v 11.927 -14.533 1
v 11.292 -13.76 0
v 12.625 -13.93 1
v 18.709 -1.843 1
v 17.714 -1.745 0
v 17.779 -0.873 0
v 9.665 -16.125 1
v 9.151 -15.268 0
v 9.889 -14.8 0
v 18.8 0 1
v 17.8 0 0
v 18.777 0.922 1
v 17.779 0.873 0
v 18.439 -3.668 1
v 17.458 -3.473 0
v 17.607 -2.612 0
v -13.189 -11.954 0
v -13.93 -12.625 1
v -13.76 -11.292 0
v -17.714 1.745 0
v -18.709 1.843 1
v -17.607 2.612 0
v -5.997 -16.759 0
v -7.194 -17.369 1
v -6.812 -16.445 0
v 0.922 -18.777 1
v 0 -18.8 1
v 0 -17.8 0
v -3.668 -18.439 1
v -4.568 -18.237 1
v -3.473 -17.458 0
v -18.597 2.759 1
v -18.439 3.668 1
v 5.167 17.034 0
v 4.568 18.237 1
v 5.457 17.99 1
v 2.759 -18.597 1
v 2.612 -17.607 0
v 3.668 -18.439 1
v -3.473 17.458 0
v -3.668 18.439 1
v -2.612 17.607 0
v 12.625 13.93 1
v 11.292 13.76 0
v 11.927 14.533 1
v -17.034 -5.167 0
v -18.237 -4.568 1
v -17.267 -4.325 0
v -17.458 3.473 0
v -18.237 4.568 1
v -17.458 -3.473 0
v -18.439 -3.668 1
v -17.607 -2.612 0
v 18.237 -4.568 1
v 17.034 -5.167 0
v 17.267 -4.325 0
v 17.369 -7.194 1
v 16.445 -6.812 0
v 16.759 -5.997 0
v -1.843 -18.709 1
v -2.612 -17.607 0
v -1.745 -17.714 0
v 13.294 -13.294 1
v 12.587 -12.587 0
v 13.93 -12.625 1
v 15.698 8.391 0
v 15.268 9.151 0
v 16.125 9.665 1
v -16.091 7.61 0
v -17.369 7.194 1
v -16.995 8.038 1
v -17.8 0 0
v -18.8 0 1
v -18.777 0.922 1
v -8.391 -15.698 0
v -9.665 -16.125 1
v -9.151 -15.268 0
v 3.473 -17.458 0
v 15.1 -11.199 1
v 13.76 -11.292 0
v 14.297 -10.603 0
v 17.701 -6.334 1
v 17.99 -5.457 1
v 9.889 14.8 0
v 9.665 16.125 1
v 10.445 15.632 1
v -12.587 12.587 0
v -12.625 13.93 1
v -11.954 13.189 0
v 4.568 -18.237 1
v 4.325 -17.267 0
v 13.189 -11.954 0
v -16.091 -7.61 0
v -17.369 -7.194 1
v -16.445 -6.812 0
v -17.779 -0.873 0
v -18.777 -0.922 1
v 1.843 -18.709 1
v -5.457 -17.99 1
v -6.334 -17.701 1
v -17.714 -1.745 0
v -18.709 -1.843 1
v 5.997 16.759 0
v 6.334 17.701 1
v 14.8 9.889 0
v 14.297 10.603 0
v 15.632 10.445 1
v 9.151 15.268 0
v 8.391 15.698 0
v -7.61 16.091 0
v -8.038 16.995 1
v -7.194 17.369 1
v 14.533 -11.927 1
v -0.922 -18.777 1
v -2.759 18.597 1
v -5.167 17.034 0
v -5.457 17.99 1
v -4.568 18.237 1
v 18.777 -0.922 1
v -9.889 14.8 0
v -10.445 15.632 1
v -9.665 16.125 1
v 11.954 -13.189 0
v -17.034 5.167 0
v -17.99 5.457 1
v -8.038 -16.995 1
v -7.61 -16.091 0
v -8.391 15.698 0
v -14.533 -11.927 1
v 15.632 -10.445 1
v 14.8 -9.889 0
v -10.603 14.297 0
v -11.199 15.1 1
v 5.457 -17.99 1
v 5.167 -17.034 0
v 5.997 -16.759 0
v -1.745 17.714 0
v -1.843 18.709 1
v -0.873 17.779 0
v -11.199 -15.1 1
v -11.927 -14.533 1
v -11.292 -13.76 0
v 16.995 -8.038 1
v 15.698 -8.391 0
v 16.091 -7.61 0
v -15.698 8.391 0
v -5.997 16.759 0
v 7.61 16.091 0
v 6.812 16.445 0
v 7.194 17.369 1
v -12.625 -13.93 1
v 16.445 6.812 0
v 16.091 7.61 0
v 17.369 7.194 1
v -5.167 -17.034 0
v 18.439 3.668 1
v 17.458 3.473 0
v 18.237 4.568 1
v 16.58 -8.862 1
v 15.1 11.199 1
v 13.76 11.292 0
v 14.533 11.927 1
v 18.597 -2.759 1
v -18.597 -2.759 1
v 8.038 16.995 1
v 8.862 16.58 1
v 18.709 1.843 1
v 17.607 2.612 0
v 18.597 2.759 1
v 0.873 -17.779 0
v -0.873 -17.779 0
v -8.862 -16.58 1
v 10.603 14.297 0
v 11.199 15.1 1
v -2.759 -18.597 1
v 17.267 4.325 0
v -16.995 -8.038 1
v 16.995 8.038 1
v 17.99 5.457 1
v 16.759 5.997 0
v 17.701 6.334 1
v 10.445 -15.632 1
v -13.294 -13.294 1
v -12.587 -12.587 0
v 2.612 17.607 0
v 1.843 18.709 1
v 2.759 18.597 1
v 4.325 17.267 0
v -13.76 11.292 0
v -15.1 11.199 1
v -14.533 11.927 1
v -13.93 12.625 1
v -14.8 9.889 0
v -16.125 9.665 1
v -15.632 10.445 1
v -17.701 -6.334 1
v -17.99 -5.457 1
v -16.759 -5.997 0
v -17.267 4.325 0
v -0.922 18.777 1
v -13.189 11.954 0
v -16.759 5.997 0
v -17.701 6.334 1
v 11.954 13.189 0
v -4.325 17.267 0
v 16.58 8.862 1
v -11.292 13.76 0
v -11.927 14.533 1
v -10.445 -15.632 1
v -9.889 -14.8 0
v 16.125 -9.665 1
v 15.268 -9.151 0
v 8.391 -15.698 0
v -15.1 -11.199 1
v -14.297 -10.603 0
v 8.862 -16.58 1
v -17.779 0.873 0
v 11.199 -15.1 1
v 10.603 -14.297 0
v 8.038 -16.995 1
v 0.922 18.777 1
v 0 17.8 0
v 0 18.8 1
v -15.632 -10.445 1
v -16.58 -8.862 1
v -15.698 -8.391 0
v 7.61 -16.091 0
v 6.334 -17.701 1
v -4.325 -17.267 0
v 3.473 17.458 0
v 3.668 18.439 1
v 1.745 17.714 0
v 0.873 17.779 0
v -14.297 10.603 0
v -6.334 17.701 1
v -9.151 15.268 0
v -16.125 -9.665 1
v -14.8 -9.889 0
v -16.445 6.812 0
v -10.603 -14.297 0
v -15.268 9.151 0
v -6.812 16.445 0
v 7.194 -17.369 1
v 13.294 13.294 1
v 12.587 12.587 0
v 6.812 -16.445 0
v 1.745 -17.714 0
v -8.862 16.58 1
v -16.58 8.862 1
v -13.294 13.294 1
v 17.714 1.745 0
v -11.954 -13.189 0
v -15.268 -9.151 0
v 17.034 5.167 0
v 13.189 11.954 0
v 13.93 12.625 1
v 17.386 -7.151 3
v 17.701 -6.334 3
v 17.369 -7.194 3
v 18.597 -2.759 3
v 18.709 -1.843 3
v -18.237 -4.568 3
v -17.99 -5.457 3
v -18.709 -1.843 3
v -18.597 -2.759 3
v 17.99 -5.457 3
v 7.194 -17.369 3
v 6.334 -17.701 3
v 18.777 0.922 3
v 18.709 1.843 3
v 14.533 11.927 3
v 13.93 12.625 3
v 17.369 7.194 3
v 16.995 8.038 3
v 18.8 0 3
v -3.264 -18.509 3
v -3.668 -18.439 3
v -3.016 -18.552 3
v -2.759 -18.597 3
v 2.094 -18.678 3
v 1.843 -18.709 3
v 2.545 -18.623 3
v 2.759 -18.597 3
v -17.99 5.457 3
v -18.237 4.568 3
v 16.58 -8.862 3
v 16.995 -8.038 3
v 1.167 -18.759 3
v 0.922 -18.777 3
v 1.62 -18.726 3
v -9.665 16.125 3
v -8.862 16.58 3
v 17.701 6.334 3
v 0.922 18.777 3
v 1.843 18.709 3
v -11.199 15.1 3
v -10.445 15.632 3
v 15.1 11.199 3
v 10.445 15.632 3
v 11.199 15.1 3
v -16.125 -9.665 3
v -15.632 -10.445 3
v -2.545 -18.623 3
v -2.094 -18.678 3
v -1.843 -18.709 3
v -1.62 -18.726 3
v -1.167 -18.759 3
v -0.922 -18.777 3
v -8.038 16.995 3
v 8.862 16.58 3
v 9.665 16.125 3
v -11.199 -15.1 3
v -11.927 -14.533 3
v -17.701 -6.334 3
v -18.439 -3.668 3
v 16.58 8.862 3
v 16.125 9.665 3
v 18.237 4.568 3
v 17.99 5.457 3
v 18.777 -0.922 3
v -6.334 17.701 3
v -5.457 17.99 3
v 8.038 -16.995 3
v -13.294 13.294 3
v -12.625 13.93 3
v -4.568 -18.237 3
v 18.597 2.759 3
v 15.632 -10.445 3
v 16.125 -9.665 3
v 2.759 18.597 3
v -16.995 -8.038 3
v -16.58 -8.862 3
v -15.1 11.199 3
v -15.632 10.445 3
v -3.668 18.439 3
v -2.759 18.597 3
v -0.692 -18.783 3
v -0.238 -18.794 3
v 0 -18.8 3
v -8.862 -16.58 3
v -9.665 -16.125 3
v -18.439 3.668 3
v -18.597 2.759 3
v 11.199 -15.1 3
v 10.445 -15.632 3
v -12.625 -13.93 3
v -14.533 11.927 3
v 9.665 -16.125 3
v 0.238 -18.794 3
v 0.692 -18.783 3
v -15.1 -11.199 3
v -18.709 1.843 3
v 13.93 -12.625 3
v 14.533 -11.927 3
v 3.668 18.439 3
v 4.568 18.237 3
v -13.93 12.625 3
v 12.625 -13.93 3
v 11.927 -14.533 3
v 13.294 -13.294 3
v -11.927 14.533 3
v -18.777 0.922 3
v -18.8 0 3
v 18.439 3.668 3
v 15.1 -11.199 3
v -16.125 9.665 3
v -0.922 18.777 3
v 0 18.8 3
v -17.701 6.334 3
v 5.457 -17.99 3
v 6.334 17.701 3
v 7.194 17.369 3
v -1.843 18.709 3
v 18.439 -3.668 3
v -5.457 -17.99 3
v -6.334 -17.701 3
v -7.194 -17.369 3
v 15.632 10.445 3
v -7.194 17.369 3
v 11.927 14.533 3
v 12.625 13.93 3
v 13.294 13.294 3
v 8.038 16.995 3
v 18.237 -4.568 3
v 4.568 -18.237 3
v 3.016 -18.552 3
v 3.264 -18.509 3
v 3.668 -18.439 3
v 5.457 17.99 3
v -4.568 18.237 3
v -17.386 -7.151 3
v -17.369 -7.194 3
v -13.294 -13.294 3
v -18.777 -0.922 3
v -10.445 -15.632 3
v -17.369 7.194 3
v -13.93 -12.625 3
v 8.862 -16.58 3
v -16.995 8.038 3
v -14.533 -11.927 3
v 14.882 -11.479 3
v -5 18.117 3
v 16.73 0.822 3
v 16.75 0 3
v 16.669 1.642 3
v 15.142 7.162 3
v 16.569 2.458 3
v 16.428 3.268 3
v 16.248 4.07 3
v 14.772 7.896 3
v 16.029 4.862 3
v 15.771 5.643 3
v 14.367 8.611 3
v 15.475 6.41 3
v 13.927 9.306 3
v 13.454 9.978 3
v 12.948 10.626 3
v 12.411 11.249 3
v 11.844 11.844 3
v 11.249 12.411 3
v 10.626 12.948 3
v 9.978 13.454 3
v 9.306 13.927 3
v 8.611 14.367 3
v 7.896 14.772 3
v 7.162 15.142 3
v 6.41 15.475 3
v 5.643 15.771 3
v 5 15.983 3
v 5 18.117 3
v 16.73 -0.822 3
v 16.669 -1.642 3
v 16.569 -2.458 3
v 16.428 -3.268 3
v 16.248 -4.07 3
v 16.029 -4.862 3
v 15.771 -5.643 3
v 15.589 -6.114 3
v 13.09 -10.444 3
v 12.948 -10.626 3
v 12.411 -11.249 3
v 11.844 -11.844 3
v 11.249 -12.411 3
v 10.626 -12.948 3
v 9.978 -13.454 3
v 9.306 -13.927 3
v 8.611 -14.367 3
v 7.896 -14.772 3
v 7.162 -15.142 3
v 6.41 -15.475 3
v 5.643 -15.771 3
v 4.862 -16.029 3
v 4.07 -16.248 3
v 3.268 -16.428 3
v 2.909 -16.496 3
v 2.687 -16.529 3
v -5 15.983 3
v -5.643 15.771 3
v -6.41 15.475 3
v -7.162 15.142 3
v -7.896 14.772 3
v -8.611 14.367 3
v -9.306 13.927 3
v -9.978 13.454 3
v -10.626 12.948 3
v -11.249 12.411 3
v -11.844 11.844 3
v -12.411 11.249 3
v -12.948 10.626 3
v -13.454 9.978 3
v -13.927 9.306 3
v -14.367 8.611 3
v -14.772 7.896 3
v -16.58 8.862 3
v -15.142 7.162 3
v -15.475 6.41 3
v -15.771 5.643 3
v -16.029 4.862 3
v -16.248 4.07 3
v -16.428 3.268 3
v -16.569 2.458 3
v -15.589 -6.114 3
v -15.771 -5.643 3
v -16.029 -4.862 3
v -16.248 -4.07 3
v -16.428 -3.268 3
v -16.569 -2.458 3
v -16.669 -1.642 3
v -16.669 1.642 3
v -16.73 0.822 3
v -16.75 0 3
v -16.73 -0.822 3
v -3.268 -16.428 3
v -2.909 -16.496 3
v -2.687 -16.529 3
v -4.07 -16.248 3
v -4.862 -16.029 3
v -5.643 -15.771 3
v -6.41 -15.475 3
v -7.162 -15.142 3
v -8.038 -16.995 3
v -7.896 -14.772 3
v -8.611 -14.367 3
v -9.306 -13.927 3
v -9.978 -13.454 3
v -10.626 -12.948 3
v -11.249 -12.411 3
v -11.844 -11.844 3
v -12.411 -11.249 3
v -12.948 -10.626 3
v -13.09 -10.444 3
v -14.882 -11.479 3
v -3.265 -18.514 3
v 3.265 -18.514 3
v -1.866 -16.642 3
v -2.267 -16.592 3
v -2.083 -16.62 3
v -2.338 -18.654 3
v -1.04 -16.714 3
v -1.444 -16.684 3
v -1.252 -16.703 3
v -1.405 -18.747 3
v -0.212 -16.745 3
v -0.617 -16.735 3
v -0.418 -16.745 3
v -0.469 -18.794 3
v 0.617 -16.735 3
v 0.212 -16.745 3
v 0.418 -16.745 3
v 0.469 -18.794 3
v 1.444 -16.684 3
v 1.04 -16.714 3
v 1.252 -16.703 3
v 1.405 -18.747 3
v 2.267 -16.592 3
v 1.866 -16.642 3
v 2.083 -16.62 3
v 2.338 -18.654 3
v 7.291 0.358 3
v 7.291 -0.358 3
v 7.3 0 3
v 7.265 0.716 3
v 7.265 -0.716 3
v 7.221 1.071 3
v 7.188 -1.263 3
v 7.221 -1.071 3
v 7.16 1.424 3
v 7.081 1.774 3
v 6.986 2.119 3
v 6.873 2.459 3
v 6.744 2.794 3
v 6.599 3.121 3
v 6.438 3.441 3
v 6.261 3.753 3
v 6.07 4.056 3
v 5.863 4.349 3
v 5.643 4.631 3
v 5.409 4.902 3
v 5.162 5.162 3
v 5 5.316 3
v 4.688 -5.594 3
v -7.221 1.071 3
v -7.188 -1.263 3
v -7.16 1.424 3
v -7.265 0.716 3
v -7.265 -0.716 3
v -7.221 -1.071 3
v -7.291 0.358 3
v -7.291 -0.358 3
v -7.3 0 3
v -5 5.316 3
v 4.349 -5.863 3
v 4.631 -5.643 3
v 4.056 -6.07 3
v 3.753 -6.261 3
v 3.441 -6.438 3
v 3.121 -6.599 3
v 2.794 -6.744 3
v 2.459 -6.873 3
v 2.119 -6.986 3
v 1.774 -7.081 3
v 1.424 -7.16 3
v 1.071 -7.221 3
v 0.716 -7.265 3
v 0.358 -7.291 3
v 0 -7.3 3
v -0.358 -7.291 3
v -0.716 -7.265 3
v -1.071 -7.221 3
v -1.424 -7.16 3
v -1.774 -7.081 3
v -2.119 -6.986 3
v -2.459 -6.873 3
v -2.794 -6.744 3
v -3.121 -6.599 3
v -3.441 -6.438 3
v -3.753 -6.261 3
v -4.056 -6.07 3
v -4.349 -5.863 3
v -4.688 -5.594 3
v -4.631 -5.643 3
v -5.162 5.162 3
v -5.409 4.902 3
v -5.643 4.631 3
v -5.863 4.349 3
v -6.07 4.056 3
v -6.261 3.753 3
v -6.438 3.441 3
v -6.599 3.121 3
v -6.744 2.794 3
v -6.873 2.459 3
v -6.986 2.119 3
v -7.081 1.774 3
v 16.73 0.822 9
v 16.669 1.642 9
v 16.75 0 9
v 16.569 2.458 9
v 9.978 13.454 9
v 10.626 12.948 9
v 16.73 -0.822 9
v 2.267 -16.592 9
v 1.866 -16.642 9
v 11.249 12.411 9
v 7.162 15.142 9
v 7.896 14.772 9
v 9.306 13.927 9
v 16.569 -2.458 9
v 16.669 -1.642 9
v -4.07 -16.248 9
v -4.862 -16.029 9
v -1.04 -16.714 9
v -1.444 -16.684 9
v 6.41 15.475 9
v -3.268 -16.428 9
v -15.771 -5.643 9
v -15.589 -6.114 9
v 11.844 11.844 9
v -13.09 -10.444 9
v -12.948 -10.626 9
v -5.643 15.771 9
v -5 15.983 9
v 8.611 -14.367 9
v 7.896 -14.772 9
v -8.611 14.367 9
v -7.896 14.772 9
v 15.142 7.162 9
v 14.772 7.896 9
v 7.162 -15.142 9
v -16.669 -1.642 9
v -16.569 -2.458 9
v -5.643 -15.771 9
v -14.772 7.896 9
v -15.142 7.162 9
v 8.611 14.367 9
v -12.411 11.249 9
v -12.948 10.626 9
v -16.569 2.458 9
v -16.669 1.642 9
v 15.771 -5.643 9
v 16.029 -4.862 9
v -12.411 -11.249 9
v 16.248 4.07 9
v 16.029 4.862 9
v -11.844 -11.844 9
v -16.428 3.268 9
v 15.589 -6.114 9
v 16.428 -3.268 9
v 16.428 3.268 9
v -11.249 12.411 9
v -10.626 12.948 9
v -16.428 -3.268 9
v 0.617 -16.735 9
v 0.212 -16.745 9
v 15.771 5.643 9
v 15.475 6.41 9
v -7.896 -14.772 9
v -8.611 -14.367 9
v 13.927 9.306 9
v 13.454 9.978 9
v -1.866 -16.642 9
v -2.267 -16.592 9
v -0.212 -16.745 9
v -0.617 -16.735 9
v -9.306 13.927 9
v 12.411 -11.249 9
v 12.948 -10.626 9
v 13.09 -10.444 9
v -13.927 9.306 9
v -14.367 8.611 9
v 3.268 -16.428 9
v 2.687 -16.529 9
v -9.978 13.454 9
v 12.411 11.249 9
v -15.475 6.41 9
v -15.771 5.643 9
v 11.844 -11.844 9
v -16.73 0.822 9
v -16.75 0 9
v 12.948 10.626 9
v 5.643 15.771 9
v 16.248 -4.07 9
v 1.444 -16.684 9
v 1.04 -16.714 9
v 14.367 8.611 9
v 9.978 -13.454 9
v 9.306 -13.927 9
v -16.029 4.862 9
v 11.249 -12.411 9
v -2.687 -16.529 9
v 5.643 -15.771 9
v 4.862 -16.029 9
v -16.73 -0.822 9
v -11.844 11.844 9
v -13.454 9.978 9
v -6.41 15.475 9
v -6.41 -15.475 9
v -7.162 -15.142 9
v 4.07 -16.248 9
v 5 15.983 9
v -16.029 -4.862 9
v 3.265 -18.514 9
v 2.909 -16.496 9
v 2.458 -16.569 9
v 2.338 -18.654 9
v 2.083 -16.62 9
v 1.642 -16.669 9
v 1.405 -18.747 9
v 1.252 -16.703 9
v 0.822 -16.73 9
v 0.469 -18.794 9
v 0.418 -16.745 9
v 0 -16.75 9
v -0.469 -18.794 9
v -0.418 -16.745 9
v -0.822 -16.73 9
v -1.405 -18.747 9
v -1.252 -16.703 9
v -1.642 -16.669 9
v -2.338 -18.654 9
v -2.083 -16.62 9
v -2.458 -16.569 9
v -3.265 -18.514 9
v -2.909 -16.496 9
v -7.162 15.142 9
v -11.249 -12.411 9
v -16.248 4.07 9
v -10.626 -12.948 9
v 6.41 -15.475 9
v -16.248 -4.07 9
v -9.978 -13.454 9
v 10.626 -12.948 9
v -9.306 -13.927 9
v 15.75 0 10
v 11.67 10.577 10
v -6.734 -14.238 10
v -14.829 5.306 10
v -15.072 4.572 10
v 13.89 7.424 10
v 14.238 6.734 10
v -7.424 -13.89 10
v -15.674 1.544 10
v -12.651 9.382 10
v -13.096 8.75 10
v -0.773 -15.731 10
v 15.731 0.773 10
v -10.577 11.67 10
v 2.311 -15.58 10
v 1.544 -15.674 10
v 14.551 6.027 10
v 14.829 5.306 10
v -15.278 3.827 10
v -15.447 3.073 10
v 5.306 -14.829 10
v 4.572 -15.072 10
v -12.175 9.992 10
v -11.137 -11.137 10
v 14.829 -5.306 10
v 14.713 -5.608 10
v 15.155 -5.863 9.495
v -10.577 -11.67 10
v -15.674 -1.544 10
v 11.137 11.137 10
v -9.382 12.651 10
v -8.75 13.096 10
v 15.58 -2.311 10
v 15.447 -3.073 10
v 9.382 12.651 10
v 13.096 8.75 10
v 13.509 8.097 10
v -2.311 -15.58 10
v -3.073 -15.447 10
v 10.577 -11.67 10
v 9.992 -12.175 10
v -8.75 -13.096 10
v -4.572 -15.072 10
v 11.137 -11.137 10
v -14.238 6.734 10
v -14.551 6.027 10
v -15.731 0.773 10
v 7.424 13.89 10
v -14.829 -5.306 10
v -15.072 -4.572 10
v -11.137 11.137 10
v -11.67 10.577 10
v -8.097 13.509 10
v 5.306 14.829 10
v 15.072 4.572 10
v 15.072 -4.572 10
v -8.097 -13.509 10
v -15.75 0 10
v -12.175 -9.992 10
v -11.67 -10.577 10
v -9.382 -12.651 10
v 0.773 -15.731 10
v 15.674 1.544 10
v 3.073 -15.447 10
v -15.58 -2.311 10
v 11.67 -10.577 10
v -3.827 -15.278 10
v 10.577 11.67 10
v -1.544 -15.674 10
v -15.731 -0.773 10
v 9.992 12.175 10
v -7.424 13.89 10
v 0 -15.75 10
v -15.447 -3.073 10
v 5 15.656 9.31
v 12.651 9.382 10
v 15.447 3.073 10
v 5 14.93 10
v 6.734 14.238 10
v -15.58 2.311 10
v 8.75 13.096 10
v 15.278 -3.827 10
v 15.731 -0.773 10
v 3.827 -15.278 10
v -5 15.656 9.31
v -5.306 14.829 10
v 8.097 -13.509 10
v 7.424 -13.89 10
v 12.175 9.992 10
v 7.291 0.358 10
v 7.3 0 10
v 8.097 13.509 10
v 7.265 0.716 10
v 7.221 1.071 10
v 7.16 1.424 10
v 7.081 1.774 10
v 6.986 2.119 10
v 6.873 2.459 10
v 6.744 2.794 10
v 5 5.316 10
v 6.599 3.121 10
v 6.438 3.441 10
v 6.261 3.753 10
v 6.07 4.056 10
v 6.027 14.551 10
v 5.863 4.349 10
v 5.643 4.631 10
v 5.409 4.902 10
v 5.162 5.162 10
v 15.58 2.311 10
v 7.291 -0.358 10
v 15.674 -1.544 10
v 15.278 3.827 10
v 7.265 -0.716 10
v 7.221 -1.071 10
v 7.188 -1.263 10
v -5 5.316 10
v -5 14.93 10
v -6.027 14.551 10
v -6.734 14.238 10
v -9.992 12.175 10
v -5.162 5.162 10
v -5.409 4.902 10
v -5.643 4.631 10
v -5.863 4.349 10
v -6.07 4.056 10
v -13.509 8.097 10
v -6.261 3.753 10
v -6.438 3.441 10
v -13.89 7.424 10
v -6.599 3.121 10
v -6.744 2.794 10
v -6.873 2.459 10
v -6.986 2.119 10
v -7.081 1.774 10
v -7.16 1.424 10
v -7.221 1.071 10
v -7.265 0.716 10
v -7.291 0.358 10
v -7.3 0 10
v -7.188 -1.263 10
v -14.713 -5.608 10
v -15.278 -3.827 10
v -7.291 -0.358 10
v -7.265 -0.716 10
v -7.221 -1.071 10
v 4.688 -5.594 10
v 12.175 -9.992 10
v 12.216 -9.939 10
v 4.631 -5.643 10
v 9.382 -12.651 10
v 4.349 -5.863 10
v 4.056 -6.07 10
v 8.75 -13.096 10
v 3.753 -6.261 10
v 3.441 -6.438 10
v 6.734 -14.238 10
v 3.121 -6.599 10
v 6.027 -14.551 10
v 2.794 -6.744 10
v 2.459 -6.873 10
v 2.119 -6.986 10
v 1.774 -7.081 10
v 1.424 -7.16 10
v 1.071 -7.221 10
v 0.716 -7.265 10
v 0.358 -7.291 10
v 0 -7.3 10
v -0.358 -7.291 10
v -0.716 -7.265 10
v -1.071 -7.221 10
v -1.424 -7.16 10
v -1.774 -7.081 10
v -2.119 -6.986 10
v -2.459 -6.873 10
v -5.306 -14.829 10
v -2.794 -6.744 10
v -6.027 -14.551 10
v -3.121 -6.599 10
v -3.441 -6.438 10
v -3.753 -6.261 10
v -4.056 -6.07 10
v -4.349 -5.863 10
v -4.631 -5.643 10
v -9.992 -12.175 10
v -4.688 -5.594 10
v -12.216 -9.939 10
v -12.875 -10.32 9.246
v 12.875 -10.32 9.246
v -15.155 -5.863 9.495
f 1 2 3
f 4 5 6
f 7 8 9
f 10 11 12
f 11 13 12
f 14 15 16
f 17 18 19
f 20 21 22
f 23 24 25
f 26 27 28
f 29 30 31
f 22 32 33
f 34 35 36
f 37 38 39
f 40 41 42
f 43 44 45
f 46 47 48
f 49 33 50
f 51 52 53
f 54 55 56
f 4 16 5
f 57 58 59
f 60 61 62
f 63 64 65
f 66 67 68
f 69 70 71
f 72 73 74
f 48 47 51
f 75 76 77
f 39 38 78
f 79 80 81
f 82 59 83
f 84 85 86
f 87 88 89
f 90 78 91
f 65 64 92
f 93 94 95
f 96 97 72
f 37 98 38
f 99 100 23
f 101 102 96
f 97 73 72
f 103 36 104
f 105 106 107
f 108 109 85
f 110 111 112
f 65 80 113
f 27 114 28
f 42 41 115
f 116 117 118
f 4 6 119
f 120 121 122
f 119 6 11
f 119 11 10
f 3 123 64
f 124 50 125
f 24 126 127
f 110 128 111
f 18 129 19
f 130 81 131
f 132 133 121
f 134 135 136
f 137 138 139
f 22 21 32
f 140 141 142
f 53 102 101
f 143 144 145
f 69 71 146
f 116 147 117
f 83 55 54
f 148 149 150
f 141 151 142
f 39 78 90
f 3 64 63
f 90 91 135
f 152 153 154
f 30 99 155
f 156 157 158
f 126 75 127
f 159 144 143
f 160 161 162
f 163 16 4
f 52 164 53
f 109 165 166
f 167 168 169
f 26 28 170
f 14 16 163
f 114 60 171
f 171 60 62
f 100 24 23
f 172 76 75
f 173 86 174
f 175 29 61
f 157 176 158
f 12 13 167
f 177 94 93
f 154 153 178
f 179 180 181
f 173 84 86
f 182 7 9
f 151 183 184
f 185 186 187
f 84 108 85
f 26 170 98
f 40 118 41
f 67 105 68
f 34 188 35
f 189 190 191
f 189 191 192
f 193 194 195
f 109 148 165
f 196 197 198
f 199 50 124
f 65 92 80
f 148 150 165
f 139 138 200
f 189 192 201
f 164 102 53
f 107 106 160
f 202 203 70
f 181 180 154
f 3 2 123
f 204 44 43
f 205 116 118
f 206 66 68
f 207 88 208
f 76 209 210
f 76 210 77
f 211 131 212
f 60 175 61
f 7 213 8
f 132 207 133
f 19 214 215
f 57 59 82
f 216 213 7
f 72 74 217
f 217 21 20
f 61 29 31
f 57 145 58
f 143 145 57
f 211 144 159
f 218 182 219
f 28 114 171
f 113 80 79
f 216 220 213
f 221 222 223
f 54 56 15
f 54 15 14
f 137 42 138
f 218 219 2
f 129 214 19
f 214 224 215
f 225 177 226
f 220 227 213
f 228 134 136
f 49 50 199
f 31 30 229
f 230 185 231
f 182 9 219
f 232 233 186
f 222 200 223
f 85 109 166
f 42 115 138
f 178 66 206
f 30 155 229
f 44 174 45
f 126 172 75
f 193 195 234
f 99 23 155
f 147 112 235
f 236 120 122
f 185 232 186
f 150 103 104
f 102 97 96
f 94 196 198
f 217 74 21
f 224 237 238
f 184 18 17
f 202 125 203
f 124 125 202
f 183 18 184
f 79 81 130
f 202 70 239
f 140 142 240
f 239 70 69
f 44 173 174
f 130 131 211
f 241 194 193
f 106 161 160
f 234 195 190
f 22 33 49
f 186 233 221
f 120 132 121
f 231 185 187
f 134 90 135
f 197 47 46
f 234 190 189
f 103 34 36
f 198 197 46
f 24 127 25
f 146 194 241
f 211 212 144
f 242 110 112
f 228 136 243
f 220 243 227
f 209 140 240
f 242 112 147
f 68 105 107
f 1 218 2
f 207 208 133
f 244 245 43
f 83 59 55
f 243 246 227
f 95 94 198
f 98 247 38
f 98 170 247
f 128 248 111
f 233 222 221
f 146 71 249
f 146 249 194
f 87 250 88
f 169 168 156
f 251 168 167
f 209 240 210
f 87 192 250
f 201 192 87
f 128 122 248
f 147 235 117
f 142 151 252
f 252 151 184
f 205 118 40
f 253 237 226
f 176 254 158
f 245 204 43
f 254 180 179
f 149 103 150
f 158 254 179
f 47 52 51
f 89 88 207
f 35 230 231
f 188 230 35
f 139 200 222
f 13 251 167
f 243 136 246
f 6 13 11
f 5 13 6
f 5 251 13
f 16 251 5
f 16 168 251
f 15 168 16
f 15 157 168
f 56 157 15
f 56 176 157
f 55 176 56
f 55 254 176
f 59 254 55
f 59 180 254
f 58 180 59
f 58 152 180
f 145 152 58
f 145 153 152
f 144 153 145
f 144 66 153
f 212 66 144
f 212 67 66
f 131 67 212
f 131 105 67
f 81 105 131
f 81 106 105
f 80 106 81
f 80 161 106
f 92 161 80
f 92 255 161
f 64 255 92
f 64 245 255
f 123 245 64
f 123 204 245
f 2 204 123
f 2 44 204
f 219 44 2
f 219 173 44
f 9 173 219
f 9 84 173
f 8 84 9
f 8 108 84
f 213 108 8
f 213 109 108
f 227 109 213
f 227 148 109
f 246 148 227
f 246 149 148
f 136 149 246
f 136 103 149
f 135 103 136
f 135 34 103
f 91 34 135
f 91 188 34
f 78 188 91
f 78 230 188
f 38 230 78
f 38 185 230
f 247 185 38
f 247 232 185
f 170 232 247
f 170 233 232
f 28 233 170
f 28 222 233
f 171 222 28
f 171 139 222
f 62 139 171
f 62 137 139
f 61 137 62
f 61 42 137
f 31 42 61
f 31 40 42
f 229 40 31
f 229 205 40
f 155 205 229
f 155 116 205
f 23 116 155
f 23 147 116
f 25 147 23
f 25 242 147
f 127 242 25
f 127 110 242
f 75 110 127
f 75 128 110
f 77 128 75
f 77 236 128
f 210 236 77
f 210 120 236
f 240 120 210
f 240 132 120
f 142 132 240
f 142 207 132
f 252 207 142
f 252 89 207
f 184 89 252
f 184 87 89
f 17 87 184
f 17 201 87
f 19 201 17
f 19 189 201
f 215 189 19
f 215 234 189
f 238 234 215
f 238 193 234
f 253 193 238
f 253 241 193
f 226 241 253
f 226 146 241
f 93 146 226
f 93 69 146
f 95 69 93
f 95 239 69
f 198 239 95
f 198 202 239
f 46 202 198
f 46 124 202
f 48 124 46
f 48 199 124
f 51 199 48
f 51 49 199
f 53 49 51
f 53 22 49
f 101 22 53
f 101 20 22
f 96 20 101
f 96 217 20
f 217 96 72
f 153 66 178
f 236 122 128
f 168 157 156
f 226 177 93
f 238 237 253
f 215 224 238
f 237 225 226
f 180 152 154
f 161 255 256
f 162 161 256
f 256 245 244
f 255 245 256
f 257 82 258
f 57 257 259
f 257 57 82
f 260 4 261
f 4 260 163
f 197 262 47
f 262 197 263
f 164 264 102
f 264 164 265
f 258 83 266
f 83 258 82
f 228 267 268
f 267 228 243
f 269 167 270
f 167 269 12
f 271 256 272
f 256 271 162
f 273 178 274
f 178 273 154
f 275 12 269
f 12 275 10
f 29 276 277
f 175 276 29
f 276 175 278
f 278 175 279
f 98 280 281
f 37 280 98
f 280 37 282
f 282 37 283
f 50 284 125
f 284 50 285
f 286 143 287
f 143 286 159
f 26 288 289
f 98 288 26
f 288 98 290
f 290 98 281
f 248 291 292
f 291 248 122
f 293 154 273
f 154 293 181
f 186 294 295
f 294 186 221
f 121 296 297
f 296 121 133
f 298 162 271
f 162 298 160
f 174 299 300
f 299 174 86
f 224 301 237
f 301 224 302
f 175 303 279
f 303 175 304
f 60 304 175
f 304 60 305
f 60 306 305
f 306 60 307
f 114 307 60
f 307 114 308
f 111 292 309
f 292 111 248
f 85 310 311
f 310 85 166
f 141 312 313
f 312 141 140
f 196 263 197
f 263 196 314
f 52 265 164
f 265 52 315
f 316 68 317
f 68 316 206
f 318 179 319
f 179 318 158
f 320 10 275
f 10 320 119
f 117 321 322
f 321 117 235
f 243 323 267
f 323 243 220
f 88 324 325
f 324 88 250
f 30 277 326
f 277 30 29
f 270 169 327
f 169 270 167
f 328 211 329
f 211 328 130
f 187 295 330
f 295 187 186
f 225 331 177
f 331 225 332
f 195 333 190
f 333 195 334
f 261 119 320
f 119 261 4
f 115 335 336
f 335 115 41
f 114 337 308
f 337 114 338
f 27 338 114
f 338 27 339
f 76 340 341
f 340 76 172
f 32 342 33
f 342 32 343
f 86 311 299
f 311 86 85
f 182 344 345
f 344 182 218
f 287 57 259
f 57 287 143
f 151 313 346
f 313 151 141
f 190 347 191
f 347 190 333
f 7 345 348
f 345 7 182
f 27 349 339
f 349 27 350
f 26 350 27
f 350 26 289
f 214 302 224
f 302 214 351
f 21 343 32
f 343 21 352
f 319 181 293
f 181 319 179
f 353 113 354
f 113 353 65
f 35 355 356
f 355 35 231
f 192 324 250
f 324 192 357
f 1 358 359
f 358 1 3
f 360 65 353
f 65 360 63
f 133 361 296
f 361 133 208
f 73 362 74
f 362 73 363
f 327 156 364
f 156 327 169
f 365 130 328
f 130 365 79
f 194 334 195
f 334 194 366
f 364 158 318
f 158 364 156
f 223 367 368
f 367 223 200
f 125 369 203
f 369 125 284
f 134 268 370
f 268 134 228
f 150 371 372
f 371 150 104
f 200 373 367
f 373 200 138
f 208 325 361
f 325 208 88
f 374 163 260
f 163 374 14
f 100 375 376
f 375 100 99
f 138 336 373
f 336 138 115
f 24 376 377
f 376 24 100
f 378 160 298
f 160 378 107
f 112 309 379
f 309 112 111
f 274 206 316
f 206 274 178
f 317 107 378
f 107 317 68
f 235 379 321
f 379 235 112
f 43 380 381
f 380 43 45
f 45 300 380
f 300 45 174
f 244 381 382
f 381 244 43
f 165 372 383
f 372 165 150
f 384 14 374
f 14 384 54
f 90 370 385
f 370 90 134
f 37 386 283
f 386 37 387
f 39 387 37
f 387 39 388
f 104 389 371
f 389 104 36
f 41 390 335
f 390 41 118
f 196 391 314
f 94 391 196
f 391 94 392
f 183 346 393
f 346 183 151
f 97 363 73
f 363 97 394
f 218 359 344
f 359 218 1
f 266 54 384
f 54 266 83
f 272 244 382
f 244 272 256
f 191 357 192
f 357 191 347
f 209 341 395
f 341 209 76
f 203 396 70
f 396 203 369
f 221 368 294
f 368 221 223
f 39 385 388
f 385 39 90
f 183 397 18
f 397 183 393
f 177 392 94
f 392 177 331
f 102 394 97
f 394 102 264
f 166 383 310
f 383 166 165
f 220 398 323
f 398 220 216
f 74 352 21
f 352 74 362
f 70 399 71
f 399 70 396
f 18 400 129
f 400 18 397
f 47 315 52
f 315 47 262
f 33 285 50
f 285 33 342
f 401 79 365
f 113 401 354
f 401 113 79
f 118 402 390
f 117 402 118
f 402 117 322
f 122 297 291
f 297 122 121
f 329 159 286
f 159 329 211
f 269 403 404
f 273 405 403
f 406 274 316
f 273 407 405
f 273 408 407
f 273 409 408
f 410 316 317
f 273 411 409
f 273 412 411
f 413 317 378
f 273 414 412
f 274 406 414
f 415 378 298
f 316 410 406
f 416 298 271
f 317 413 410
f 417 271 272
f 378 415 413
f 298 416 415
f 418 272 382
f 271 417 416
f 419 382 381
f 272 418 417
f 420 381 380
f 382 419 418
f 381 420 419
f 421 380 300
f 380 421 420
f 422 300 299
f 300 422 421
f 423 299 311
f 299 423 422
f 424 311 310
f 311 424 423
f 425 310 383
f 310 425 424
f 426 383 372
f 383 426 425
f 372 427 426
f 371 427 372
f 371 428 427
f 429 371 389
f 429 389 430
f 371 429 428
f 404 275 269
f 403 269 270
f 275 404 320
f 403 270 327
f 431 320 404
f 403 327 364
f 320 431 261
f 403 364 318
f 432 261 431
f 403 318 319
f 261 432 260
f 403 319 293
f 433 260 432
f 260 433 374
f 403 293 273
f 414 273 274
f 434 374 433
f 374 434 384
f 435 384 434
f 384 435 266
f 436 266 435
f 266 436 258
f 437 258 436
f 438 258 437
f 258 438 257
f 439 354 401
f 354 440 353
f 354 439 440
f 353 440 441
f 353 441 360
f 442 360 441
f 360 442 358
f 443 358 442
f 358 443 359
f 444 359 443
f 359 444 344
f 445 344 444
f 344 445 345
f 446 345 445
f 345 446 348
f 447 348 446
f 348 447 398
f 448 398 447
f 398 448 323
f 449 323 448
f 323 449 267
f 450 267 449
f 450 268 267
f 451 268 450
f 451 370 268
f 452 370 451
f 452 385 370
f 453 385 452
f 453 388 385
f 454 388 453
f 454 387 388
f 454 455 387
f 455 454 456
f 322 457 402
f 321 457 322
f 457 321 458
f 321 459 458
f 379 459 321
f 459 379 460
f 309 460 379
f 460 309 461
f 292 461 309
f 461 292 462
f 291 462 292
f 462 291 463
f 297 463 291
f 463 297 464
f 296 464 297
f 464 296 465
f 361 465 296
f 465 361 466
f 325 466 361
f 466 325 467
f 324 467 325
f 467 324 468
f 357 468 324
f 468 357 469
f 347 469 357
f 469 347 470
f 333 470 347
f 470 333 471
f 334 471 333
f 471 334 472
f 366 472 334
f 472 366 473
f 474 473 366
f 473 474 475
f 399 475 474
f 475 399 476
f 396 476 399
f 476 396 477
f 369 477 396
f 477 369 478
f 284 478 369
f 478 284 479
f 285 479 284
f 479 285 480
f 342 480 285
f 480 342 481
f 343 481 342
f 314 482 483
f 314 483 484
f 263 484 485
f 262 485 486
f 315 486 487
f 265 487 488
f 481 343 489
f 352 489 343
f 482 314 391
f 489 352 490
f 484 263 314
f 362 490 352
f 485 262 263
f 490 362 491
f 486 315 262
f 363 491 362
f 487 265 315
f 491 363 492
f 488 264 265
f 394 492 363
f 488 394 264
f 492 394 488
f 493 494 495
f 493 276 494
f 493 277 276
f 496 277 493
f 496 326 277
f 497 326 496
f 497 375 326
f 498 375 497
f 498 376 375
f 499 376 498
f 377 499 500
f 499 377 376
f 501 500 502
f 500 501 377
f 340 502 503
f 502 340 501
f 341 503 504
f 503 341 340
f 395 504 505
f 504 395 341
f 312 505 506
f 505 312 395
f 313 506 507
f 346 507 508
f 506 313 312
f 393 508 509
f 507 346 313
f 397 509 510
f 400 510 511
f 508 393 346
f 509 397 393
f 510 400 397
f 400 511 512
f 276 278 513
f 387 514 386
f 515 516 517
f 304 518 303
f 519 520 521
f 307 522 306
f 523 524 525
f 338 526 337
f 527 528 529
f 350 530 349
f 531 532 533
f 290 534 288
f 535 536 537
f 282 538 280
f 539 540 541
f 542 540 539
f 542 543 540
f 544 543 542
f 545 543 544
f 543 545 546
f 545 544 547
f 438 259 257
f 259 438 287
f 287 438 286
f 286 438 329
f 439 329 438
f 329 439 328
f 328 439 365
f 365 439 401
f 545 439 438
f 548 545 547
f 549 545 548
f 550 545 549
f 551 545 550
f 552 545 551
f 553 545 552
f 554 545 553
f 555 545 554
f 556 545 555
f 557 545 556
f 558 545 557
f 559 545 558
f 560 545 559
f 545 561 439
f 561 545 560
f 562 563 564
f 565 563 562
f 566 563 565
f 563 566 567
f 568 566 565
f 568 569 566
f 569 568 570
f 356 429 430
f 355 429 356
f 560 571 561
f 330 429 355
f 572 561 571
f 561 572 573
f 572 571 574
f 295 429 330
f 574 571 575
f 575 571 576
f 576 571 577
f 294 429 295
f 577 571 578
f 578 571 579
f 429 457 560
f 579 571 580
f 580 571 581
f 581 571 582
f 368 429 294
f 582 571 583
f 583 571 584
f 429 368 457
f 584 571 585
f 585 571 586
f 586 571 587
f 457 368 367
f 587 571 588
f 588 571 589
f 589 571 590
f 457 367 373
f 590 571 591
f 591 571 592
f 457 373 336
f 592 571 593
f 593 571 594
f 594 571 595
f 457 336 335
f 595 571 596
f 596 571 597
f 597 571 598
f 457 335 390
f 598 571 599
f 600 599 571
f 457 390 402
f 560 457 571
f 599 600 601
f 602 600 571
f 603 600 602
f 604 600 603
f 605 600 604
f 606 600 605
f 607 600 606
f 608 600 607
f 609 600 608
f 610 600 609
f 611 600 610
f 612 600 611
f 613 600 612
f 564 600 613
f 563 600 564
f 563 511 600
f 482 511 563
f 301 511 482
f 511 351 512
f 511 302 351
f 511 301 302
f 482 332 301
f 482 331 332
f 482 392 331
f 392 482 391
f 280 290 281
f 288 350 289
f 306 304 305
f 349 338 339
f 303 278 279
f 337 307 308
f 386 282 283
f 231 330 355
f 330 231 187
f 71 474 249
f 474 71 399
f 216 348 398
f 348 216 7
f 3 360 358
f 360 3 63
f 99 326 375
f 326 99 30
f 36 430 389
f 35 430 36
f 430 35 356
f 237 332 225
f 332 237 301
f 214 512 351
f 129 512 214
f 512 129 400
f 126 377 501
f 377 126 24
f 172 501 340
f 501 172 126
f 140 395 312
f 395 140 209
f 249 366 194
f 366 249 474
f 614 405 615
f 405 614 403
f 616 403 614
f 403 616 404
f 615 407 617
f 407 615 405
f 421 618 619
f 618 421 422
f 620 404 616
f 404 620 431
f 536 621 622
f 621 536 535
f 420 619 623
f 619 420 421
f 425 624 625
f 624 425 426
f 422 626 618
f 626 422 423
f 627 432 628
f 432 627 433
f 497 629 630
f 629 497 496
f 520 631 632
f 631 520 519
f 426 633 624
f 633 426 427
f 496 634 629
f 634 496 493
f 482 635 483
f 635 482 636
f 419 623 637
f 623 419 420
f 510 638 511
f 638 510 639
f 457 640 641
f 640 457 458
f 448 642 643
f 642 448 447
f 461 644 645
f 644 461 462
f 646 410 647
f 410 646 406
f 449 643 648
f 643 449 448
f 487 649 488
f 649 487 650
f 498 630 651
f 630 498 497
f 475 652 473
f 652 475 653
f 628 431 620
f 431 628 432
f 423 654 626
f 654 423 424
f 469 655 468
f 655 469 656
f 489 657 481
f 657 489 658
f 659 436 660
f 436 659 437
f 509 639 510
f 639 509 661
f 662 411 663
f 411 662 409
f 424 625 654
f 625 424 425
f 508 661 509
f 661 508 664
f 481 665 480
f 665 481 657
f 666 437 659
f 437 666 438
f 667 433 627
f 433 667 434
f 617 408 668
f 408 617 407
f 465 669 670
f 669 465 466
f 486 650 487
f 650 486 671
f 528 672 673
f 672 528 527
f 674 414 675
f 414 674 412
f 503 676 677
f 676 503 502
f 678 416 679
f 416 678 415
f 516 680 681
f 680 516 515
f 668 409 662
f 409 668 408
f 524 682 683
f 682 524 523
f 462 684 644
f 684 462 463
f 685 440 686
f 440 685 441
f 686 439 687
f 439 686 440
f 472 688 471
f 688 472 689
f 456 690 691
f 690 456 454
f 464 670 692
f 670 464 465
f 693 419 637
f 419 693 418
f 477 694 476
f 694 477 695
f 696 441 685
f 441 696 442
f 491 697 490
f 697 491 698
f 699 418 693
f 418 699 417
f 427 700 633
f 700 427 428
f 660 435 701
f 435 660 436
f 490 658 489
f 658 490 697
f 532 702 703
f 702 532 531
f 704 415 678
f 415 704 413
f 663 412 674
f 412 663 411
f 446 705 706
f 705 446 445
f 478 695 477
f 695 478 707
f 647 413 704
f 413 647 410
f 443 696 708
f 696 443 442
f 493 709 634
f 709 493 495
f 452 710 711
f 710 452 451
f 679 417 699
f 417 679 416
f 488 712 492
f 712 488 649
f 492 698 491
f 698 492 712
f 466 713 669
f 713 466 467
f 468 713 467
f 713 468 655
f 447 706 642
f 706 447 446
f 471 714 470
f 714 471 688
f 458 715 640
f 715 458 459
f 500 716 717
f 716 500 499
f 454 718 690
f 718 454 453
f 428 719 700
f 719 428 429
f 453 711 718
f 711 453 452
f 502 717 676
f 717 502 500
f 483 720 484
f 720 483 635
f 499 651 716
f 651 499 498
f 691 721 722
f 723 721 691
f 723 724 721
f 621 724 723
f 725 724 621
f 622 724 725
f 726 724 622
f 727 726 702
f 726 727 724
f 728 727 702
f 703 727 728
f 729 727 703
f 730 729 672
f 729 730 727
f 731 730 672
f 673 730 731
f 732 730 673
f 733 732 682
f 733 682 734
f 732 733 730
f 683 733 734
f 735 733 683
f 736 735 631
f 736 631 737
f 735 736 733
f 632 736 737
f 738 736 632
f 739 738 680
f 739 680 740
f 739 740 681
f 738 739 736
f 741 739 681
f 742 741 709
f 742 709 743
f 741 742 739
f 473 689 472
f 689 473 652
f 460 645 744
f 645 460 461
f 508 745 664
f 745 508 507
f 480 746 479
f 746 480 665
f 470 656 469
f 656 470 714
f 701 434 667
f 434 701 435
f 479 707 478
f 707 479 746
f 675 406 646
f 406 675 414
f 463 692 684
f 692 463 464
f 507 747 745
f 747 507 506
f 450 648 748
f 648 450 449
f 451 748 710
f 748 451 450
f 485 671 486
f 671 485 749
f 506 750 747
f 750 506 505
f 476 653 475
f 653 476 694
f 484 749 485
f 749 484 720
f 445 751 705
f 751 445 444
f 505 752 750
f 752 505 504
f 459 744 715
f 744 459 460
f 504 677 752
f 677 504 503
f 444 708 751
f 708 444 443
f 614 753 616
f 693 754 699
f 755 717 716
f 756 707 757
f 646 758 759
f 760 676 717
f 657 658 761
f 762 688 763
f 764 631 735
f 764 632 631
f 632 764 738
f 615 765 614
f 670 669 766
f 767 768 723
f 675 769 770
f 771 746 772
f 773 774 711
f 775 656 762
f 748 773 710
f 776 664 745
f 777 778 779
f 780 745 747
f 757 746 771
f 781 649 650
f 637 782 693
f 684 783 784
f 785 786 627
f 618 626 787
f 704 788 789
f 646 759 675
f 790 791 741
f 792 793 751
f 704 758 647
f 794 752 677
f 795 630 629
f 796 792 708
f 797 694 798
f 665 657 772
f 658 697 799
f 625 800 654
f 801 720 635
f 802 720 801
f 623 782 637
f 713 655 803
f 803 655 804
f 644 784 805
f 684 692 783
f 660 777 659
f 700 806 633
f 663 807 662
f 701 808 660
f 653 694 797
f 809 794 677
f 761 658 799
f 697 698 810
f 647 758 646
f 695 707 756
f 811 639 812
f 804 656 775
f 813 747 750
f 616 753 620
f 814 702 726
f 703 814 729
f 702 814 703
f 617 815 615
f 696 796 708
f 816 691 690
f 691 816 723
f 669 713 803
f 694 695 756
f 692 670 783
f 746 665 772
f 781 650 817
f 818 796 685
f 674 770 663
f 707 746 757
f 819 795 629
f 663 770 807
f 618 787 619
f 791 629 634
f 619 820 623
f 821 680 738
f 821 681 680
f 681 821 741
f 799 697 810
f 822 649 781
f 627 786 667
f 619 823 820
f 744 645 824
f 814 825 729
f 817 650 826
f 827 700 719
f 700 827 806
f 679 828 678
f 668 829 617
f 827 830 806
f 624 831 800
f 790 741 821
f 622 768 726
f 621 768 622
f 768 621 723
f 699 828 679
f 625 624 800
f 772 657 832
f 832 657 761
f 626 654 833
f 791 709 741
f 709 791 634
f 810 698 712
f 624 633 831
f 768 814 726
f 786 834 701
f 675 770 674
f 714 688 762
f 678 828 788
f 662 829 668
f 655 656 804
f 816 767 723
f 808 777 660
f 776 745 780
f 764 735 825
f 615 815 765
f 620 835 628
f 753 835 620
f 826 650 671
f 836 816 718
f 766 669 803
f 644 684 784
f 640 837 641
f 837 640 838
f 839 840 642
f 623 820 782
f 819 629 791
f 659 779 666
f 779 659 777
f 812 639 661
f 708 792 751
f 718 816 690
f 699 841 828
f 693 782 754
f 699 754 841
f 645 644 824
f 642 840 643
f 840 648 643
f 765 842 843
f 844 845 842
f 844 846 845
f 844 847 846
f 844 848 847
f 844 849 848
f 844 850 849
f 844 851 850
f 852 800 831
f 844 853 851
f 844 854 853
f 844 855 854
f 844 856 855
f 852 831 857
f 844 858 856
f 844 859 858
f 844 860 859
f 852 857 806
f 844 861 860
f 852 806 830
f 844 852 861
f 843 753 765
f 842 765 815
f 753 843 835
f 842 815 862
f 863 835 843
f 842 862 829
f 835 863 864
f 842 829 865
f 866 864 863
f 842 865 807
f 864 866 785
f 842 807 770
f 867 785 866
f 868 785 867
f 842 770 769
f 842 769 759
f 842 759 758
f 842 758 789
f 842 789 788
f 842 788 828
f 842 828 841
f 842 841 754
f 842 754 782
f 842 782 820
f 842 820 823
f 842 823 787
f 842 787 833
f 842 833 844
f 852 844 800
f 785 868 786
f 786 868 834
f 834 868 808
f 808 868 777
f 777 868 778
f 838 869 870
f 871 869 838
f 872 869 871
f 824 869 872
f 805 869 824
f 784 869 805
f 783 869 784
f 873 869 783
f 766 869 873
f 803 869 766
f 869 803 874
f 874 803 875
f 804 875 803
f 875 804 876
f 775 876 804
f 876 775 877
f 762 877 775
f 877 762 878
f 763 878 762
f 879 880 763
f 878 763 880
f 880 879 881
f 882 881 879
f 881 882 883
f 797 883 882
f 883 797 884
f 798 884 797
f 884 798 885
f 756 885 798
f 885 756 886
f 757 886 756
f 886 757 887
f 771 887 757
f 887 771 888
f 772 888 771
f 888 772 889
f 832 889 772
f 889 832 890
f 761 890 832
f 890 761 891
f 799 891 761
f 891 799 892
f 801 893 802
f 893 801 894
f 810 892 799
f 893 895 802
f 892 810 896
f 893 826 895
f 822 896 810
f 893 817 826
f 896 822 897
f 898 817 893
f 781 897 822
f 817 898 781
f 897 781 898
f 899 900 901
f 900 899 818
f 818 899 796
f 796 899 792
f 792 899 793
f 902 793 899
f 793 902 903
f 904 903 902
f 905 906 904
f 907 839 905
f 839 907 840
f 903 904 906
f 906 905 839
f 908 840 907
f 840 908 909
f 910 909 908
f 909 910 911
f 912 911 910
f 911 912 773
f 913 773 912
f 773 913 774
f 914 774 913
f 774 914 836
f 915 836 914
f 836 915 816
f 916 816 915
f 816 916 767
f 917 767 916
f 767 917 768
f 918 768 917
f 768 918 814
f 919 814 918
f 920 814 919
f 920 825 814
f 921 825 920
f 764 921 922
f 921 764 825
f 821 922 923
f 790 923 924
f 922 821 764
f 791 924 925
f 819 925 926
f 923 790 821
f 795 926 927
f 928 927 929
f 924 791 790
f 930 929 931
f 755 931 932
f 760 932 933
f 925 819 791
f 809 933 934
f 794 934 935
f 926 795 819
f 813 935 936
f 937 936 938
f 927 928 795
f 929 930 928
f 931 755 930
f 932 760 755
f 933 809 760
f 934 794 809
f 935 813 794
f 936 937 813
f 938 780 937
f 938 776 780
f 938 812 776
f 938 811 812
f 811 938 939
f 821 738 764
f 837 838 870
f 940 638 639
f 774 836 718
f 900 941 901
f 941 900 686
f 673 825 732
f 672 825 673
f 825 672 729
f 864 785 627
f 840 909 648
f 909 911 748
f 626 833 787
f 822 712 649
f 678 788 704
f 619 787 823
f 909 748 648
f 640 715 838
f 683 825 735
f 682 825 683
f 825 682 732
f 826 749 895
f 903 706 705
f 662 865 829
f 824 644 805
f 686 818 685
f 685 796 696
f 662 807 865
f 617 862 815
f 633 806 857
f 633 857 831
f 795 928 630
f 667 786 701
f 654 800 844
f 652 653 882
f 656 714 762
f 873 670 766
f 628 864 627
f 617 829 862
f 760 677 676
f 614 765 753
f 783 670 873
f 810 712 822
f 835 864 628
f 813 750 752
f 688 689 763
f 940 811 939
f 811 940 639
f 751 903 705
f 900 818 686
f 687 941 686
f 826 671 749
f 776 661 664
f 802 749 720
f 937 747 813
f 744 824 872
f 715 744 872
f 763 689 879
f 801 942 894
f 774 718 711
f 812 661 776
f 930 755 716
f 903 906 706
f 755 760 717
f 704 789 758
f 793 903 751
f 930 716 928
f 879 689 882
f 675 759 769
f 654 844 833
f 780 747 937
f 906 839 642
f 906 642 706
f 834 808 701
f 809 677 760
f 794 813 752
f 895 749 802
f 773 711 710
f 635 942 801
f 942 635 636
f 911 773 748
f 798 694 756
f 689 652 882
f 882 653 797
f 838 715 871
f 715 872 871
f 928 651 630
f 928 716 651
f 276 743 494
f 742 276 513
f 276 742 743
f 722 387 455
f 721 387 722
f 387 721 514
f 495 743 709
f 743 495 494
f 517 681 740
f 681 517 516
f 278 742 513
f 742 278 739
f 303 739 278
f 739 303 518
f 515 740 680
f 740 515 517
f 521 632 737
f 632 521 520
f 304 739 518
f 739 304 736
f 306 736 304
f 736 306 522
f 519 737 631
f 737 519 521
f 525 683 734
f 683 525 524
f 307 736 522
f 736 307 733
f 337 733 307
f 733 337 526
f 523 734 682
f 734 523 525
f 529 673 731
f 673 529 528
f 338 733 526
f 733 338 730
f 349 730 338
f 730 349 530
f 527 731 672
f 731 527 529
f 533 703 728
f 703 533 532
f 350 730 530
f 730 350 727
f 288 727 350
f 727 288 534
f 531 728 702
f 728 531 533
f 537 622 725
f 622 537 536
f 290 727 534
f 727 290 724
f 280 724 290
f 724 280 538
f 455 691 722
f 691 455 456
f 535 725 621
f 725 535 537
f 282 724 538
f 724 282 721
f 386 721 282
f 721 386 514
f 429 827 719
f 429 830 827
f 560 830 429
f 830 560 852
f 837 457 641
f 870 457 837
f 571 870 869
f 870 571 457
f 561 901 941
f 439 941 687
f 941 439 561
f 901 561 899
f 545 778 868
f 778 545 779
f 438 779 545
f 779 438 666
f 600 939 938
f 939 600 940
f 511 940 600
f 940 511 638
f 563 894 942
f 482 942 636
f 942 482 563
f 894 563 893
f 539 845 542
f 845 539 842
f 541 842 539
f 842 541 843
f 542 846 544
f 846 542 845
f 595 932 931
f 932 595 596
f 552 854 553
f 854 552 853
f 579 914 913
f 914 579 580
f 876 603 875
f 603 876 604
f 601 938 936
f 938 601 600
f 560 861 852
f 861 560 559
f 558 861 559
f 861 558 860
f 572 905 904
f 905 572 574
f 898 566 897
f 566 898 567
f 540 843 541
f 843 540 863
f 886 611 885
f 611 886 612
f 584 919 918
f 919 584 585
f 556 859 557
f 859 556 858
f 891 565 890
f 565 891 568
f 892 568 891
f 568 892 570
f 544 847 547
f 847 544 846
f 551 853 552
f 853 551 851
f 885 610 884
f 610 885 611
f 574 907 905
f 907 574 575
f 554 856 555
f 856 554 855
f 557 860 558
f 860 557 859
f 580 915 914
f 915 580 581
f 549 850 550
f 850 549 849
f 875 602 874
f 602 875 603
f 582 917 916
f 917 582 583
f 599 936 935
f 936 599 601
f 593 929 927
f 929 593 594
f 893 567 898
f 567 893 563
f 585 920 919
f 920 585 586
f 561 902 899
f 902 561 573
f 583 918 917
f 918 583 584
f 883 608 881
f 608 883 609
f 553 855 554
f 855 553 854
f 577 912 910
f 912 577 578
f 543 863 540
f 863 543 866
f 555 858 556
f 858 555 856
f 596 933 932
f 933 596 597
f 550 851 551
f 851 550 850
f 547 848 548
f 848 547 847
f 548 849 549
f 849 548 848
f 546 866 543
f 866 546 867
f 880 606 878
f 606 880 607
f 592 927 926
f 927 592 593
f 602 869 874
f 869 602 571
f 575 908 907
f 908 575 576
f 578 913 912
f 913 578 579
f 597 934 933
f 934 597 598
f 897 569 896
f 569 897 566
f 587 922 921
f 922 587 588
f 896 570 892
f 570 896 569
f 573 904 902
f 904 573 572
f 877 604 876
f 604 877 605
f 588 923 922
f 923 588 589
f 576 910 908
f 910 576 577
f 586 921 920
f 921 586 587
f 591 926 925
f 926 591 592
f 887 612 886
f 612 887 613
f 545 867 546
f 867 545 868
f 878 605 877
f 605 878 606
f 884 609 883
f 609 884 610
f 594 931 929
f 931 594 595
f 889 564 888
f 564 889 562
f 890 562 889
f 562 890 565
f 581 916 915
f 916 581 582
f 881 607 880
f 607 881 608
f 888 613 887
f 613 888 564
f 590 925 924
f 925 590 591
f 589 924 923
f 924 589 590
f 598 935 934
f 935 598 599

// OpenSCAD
/*
 * Accessories for adjustable table
 */
$fn=128;
 
post_od=37.6;
post_id=33.5;
post_center_od=12.6;
post_center_id=8.7;
post_slot_w=7;
cap_thickness=3;
cap_depth=7;
wye_thickness=5;
gap_angle=20;

module wye_leg(thickness) {
    translate([-thickness/2, 0, cap_thickness])
        cube([thickness, 20, cap_depth+1]);
}

module wye() {
    wye_leg(2*wye_thickness);
    rotate([0,0,-360/3])
        wye_leg(wye_thickness);
    rotate([0,0,360/3])
        wye_leg(wye_thickness);
    translate([0,0,cap_thickness])
        cylinder(h=cap_depth+1, d=post_center_od+2);
}

module gap_fill() {
    translate([0,0,cap_thickness])
        rotate([0,0,90-(gap_angle/2)])
            rotate_extrude(angle=gap_angle)
                translate([-((post_id/2)+((post_od-post_id)/2)),0])
                    square([(post_od-post_id)/2,cap_depth-1]);
}

module cap() {
    cylinder(h=1, d1=post_od-2, d2=post_od);
    translate([0,0,1])
        cylinder(h=cap_thickness-1, d=post_od);
    translate([0,0,cap_thickness])
        cylinder(h=cap_depth-1, d=post_id);
    translate([0,0,cap_thickness+cap_depth-1])
        cylinder(h=1, d1=post_id, d2=post_id-2);
    gap_fill();
}

difference() {
    cap();
    wye();
}
